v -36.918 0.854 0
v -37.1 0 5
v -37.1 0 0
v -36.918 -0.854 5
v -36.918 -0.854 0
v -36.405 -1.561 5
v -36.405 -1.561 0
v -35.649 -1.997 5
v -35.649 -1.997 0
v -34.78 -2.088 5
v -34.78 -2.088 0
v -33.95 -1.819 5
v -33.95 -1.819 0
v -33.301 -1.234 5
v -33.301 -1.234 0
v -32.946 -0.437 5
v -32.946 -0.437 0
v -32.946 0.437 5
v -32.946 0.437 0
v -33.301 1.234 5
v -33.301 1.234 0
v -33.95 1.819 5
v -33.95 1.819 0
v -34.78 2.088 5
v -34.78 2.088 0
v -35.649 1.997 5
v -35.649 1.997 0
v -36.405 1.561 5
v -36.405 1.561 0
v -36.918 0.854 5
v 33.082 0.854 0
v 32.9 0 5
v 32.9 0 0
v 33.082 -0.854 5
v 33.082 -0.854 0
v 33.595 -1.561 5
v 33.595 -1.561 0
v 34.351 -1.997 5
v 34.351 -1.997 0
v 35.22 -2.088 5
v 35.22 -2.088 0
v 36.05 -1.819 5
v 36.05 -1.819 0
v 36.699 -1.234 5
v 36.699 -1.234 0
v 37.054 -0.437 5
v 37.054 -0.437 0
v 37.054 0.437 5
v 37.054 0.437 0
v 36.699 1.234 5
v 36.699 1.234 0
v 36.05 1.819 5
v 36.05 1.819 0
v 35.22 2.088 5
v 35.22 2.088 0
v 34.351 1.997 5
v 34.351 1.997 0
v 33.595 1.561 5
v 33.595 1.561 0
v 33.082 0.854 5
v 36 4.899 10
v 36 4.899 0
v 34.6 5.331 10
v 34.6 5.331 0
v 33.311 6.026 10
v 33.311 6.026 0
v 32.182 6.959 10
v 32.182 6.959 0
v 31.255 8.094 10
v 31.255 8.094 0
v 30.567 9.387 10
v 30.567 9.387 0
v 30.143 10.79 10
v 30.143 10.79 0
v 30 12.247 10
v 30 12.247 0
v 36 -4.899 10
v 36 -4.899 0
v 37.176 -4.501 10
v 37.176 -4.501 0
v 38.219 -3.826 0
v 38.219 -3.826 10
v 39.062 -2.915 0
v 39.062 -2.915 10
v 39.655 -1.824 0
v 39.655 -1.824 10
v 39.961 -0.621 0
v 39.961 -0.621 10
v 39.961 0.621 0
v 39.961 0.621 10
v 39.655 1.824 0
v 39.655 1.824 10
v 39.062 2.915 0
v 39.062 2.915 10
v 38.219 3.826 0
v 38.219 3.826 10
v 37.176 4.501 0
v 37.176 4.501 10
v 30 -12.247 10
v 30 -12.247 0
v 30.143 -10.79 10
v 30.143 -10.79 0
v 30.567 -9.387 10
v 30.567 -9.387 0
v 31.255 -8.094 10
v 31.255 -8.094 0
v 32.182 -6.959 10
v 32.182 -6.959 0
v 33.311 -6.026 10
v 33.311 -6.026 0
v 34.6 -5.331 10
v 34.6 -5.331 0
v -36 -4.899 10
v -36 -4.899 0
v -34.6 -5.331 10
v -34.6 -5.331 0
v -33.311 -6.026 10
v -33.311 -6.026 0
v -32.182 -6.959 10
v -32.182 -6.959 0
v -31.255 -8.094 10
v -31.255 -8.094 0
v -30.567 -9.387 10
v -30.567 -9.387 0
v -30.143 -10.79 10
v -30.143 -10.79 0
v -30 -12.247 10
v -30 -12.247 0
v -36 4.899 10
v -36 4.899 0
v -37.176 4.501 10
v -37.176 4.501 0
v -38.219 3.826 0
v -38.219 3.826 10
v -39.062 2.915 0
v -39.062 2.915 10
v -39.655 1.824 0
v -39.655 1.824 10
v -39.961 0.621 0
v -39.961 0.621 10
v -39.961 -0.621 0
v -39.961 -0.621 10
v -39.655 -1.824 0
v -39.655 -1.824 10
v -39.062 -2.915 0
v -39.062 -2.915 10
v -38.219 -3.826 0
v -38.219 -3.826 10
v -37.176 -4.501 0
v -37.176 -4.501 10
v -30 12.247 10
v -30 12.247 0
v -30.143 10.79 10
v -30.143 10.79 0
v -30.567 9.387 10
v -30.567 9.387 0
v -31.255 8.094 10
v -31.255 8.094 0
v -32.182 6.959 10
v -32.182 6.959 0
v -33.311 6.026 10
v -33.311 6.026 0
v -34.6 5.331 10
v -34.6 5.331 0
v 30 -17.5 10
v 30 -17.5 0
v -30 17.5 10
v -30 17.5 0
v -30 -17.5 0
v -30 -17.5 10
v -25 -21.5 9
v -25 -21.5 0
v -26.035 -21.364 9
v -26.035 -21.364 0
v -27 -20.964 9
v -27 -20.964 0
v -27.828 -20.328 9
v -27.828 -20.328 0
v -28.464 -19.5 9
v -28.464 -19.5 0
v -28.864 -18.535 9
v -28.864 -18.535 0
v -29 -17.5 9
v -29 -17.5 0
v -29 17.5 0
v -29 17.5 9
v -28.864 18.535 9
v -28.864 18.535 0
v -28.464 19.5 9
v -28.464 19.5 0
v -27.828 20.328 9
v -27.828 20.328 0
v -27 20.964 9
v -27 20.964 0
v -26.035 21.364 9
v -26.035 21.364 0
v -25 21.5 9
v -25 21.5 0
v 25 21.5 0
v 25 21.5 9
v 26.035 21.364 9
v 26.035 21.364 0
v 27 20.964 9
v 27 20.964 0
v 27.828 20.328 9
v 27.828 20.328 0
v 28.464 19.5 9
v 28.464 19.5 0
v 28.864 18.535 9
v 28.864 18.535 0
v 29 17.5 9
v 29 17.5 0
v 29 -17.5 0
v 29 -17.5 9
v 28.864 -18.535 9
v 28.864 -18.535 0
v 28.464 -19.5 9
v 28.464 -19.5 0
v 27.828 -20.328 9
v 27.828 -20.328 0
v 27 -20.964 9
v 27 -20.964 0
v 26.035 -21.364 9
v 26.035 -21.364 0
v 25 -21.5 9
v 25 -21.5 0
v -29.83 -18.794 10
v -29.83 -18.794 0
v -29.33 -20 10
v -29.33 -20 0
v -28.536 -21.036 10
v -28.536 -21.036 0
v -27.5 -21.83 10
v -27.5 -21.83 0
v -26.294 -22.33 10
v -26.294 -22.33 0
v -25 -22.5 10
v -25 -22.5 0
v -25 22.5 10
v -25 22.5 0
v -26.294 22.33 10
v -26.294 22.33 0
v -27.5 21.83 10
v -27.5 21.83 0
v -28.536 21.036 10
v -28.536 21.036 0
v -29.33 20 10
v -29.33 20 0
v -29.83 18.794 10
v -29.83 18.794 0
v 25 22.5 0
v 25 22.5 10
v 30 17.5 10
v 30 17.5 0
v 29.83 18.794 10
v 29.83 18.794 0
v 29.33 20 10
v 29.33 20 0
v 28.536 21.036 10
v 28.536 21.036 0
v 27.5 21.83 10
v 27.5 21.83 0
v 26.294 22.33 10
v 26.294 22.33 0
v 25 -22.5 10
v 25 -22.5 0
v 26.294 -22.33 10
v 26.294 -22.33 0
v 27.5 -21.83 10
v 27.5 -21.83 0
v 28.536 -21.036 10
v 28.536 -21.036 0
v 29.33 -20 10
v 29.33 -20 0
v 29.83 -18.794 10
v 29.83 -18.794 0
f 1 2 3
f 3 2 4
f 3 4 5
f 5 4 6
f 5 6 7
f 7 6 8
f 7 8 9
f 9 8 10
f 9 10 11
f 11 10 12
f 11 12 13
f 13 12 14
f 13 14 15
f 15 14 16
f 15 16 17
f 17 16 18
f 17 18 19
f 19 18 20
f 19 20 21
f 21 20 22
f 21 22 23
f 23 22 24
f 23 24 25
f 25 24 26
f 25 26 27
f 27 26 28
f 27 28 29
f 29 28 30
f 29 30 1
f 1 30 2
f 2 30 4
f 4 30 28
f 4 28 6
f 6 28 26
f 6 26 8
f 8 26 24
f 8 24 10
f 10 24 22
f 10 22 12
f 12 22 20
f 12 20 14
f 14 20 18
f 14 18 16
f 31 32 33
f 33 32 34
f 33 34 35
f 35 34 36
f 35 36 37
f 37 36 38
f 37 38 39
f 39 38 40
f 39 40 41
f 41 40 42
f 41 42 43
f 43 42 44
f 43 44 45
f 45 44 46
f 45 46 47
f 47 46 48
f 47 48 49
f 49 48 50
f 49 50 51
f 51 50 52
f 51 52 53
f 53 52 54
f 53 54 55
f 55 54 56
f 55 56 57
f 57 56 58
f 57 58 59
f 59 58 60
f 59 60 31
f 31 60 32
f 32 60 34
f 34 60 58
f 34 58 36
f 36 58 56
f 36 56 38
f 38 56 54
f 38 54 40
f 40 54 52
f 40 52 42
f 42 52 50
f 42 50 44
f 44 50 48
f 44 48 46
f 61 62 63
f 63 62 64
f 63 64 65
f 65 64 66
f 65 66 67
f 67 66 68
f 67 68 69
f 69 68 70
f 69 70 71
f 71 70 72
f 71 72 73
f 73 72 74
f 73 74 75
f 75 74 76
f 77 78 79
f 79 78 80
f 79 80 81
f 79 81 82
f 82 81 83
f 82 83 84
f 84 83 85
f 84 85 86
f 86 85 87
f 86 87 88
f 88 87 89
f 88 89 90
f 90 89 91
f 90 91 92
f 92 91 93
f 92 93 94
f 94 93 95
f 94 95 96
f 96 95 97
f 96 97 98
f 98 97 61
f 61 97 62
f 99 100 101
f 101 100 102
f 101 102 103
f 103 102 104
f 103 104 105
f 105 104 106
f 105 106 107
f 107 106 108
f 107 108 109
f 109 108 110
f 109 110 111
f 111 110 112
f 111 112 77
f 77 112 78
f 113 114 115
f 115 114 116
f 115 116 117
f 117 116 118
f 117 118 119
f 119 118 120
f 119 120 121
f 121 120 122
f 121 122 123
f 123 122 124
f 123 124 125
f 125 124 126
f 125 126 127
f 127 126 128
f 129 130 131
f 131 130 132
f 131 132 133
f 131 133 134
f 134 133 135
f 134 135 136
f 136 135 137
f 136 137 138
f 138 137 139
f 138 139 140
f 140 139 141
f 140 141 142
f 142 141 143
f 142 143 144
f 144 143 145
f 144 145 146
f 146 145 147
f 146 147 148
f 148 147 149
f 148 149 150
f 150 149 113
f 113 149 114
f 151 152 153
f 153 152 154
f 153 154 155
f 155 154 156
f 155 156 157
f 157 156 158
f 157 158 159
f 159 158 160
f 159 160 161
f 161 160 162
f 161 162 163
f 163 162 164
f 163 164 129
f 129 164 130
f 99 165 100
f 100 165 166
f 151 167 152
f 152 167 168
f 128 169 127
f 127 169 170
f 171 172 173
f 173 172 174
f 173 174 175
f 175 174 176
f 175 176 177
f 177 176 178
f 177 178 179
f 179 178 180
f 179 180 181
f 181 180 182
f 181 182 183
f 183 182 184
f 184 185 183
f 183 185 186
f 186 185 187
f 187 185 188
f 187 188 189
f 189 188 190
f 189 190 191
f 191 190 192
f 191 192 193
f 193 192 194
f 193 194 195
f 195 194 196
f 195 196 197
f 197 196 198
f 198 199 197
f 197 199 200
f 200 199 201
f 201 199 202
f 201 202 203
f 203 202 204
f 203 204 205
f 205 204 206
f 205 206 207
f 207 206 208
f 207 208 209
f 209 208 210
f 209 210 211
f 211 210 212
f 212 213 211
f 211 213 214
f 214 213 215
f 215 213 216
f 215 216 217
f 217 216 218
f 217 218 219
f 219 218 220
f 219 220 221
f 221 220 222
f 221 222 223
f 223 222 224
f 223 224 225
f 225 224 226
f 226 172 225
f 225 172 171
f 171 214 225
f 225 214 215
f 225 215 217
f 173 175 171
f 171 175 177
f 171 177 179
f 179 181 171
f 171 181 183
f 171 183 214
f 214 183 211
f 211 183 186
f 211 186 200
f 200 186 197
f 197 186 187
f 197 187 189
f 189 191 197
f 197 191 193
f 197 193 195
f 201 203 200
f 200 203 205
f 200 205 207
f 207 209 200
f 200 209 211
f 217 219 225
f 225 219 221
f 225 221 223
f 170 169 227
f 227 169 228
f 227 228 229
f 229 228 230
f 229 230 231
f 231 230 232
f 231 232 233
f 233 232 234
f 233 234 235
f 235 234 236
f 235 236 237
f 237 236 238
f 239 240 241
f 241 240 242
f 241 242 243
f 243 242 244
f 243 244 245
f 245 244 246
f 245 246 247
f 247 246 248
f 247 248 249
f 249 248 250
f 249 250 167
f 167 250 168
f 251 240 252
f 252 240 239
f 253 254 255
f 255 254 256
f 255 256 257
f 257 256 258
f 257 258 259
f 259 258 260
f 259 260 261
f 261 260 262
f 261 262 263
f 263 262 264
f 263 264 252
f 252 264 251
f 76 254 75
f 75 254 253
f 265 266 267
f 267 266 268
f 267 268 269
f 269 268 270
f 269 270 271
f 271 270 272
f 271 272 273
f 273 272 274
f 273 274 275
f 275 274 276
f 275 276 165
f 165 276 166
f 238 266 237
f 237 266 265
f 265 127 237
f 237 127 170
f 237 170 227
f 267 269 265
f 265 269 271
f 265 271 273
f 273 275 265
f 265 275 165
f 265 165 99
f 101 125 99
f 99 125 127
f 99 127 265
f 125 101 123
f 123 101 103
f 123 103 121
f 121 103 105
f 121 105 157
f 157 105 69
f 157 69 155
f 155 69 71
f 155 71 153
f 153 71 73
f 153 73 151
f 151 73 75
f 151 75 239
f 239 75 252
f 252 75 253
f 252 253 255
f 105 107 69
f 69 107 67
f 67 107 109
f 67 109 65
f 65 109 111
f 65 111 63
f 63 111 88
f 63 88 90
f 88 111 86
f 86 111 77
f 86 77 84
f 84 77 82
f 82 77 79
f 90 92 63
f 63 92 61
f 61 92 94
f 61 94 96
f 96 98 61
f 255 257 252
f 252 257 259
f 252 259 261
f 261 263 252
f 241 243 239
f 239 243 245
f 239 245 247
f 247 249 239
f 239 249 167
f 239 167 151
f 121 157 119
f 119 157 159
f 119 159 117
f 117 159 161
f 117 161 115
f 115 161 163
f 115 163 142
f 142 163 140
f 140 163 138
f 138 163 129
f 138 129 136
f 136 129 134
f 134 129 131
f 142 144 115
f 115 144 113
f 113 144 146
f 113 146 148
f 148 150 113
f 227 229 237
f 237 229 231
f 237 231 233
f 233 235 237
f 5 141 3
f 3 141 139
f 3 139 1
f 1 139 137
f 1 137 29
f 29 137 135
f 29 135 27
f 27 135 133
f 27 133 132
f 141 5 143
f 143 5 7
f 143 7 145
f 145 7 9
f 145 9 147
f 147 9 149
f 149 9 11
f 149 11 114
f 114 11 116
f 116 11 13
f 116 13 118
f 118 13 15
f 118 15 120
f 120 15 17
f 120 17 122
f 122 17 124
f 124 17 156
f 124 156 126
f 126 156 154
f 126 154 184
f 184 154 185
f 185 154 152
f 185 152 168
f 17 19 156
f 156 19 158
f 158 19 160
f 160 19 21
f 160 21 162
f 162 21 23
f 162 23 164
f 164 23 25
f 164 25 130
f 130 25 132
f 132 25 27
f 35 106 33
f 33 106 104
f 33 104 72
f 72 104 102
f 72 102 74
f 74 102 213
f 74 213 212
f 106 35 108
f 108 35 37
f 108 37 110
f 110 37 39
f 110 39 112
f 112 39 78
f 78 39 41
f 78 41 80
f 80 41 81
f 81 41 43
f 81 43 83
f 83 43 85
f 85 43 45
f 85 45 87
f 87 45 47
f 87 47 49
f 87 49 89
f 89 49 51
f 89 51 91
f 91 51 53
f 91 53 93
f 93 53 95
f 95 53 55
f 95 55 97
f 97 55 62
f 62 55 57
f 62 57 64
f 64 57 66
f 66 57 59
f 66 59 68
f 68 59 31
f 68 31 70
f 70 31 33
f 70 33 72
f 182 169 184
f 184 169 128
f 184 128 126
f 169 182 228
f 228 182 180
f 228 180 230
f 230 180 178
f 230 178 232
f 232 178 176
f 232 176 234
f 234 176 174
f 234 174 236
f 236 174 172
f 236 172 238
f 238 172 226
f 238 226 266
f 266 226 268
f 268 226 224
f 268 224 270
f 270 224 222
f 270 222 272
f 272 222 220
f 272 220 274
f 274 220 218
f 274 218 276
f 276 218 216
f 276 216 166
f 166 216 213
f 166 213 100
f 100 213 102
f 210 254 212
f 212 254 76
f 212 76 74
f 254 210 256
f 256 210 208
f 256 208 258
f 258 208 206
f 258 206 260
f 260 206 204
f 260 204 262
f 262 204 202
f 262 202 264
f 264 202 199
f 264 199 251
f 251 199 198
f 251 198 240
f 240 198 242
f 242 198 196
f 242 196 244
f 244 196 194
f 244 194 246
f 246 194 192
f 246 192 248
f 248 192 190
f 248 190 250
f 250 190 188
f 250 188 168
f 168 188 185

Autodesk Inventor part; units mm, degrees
ref_plane "YZ Plane" through (0, 0, 0) normal (1, 0, 0) x (0, 1, 0)
ref_plane "XZ Plane" through (0, 0, 0) normal (0, 1, 0) x (-1, 0, 0)
ref_plane "XY Plane" through (0, 0, 0) normal (0, 0, 1) x (1, 0, 0)
sketch "Boceto1" plane through (0, 0, 0) normal (0, 0, 1) x (1, 0, 0)
  line L0 (-25, 22.5) -> (25, 22.5)
  line L1 (30, 17.5) -> (30, -17.5)
  line L2 (25, -22.5) -> (-25, -22.5)
  line L3 (-30, -17.5) -> (-30, 17.5)
  line L4 (-30, 22.5) -> (30, -22.5) construction
  line L5 (30, 22.5) -> (-30, -22.5) construction
  line L6 (-25, 20.5) -> (25, 20.5)
  line L7 (28, 17.5) -> (28, -17.5)
  line L8 (25, -20.5) -> (-25, -20.5)
  line L9 (-28, -17.5) -> (-28, 17.5)
  arc A0 (-30, -17.5) -> (-25, -22.5) centre (-25, -17.5) ccw
  arc A1 (25, -22.5) -> (30, -17.5) centre (25, -17.5) ccw
  arc A2 (30, 17.5) -> (25, 22.5) centre (25, 17.5) ccw
  arc A3 (-25, 22.5) -> (-30, 17.5) centre (-25, 17.5) ccw
  arc A4 (-25, 20.5) -> (-28, 17.5) centre (-25, 17.5) ccw
  arc A5 (28, 17.5) -> (25, 20.5) centre (25, 17.5) ccw
  arc A6 (25, -20.5) -> (28, -17.5) centre (25, -17.5) ccw
  arc A7 (-28, -17.5) -> (-25, -20.5) centre (-25, -17.5) ccw
  point P0 (0, 0)
  point P1 (-28, 20.5)
  point P2 (28, 20.5)
  point P3 (28, -20.5)
  point P4 (-28, -20.5)
  dimension "d0" = 45
  dimension "d1" = 2
  dimension "d5" = 5
  dimension "d6" = 3
extrude "Extrusión1" add sketch "Boceto1" along normal blind 10 contours L0 A2 L1 A1 L2 A0 L3 A3 | L6 A5 L7 A6 L8 A7 L9 A4
shell "Vaciado1" thickness 1 removed faces 1 at (-8.3333, -7.5, 0)
sketch "Boceto2" plane through (0, 0, 0) normal (0, 0, -1) x (-1, 0, 0)
  line L0 (25, -22.5) -> (-25, -22.5) projected
  arc A0 (-30, -17.5) -> (-25, -22.5) centre (-25, -17.5) ccw projected
  line L1 (-30, -17.5) -> (-30, 17.5) projected
  arc A1 (-25, 22.5) -> (-30, 17.5) centre (-25, 17.5) ccw projected
  line L2 (-25, 22.5) -> (25, 22.5) projected
  arc A2 (30, 17.5) -> (25, 22.5) centre (25, 17.5) ccw projected
  line L3 (30, 17.5) -> (30, -17.5) projected
  arc A3 (25, -22.5) -> (30, -17.5) centre (25, -17.5) ccw projected
  line L4 (30, 0) -> (40, 0)
  line L5 (-30, 0) -> (-40, 0)
  circle A4 centre (35, 0) radius 5
  circle A5 centre (-35, 0) radius 5
  circle A6 centre (35, 0) radius 2.1
  circle A7 centre (-35, 0) radius 2.1
  circle A8 centre (37.5, -12.2474) radius 7.5
  line L6 (30, 17.5) -> (30, -17.5) projected
  circle A9 centre (-37.5, 12.2474) radius 7.5
  circle A10 centre (-37.5, -12.2474) radius 7.5
  circle A11 centre (37.5, 12.2474) radius 7.5
  line L7 (-30, -17.5) -> (-30, 17.5) projected
  point P0 (0, 0)
  point P1 (-36, -4.899)
  point P2 (-30, -12.2474)
  point P3 (-30, 12.2474)
  point P4 (-36, 4.899)
  point P5 (36, 4.899)
  point P6 (30, 12.2474)
  point P7 (30, -12.2474)
  point P8 (36, -4.899)
  dimension "d8" = 10
  dimension "d9" = 10
  dimension "d10" = 4.2
  dimension "d11" = 4.2
  dimension "d12" = 15
  dimension "d14" = 15
  dimension "d15" = 15
  dimension "d16" = 15
extrude "Extrusión2" add sketch "Boceto2" against normal blind 10 contours L3 A4 A8 | A10 A5 L1 | A4 L4 A6 | L3 A11 A4 | L4 A6 A4 | A5 A9 L1 | A5 L5 A7 | L5 A7 A5 | A6 L4 | L4 A6 | A7 L5 | L5 A7
sketch "Boceto3" plane through (0, 0, 0) normal (0, 0, -1) x (-1, 0, 0)
  arc A0 (-36, 4.899) -> (-36, -4.899) centre (-35, 0) ccw projected
  arc A1 (36, -4.899) -> (36, 4.899) centre (35, 0) ccw projected
  point P0 (0, 0)
hole "Agujero1" at (35, 0, 0) at (-35, 0, 0) direction (0, 0, 1) diameter 4.2 depth 5
properties part number "Deshumidicador"
